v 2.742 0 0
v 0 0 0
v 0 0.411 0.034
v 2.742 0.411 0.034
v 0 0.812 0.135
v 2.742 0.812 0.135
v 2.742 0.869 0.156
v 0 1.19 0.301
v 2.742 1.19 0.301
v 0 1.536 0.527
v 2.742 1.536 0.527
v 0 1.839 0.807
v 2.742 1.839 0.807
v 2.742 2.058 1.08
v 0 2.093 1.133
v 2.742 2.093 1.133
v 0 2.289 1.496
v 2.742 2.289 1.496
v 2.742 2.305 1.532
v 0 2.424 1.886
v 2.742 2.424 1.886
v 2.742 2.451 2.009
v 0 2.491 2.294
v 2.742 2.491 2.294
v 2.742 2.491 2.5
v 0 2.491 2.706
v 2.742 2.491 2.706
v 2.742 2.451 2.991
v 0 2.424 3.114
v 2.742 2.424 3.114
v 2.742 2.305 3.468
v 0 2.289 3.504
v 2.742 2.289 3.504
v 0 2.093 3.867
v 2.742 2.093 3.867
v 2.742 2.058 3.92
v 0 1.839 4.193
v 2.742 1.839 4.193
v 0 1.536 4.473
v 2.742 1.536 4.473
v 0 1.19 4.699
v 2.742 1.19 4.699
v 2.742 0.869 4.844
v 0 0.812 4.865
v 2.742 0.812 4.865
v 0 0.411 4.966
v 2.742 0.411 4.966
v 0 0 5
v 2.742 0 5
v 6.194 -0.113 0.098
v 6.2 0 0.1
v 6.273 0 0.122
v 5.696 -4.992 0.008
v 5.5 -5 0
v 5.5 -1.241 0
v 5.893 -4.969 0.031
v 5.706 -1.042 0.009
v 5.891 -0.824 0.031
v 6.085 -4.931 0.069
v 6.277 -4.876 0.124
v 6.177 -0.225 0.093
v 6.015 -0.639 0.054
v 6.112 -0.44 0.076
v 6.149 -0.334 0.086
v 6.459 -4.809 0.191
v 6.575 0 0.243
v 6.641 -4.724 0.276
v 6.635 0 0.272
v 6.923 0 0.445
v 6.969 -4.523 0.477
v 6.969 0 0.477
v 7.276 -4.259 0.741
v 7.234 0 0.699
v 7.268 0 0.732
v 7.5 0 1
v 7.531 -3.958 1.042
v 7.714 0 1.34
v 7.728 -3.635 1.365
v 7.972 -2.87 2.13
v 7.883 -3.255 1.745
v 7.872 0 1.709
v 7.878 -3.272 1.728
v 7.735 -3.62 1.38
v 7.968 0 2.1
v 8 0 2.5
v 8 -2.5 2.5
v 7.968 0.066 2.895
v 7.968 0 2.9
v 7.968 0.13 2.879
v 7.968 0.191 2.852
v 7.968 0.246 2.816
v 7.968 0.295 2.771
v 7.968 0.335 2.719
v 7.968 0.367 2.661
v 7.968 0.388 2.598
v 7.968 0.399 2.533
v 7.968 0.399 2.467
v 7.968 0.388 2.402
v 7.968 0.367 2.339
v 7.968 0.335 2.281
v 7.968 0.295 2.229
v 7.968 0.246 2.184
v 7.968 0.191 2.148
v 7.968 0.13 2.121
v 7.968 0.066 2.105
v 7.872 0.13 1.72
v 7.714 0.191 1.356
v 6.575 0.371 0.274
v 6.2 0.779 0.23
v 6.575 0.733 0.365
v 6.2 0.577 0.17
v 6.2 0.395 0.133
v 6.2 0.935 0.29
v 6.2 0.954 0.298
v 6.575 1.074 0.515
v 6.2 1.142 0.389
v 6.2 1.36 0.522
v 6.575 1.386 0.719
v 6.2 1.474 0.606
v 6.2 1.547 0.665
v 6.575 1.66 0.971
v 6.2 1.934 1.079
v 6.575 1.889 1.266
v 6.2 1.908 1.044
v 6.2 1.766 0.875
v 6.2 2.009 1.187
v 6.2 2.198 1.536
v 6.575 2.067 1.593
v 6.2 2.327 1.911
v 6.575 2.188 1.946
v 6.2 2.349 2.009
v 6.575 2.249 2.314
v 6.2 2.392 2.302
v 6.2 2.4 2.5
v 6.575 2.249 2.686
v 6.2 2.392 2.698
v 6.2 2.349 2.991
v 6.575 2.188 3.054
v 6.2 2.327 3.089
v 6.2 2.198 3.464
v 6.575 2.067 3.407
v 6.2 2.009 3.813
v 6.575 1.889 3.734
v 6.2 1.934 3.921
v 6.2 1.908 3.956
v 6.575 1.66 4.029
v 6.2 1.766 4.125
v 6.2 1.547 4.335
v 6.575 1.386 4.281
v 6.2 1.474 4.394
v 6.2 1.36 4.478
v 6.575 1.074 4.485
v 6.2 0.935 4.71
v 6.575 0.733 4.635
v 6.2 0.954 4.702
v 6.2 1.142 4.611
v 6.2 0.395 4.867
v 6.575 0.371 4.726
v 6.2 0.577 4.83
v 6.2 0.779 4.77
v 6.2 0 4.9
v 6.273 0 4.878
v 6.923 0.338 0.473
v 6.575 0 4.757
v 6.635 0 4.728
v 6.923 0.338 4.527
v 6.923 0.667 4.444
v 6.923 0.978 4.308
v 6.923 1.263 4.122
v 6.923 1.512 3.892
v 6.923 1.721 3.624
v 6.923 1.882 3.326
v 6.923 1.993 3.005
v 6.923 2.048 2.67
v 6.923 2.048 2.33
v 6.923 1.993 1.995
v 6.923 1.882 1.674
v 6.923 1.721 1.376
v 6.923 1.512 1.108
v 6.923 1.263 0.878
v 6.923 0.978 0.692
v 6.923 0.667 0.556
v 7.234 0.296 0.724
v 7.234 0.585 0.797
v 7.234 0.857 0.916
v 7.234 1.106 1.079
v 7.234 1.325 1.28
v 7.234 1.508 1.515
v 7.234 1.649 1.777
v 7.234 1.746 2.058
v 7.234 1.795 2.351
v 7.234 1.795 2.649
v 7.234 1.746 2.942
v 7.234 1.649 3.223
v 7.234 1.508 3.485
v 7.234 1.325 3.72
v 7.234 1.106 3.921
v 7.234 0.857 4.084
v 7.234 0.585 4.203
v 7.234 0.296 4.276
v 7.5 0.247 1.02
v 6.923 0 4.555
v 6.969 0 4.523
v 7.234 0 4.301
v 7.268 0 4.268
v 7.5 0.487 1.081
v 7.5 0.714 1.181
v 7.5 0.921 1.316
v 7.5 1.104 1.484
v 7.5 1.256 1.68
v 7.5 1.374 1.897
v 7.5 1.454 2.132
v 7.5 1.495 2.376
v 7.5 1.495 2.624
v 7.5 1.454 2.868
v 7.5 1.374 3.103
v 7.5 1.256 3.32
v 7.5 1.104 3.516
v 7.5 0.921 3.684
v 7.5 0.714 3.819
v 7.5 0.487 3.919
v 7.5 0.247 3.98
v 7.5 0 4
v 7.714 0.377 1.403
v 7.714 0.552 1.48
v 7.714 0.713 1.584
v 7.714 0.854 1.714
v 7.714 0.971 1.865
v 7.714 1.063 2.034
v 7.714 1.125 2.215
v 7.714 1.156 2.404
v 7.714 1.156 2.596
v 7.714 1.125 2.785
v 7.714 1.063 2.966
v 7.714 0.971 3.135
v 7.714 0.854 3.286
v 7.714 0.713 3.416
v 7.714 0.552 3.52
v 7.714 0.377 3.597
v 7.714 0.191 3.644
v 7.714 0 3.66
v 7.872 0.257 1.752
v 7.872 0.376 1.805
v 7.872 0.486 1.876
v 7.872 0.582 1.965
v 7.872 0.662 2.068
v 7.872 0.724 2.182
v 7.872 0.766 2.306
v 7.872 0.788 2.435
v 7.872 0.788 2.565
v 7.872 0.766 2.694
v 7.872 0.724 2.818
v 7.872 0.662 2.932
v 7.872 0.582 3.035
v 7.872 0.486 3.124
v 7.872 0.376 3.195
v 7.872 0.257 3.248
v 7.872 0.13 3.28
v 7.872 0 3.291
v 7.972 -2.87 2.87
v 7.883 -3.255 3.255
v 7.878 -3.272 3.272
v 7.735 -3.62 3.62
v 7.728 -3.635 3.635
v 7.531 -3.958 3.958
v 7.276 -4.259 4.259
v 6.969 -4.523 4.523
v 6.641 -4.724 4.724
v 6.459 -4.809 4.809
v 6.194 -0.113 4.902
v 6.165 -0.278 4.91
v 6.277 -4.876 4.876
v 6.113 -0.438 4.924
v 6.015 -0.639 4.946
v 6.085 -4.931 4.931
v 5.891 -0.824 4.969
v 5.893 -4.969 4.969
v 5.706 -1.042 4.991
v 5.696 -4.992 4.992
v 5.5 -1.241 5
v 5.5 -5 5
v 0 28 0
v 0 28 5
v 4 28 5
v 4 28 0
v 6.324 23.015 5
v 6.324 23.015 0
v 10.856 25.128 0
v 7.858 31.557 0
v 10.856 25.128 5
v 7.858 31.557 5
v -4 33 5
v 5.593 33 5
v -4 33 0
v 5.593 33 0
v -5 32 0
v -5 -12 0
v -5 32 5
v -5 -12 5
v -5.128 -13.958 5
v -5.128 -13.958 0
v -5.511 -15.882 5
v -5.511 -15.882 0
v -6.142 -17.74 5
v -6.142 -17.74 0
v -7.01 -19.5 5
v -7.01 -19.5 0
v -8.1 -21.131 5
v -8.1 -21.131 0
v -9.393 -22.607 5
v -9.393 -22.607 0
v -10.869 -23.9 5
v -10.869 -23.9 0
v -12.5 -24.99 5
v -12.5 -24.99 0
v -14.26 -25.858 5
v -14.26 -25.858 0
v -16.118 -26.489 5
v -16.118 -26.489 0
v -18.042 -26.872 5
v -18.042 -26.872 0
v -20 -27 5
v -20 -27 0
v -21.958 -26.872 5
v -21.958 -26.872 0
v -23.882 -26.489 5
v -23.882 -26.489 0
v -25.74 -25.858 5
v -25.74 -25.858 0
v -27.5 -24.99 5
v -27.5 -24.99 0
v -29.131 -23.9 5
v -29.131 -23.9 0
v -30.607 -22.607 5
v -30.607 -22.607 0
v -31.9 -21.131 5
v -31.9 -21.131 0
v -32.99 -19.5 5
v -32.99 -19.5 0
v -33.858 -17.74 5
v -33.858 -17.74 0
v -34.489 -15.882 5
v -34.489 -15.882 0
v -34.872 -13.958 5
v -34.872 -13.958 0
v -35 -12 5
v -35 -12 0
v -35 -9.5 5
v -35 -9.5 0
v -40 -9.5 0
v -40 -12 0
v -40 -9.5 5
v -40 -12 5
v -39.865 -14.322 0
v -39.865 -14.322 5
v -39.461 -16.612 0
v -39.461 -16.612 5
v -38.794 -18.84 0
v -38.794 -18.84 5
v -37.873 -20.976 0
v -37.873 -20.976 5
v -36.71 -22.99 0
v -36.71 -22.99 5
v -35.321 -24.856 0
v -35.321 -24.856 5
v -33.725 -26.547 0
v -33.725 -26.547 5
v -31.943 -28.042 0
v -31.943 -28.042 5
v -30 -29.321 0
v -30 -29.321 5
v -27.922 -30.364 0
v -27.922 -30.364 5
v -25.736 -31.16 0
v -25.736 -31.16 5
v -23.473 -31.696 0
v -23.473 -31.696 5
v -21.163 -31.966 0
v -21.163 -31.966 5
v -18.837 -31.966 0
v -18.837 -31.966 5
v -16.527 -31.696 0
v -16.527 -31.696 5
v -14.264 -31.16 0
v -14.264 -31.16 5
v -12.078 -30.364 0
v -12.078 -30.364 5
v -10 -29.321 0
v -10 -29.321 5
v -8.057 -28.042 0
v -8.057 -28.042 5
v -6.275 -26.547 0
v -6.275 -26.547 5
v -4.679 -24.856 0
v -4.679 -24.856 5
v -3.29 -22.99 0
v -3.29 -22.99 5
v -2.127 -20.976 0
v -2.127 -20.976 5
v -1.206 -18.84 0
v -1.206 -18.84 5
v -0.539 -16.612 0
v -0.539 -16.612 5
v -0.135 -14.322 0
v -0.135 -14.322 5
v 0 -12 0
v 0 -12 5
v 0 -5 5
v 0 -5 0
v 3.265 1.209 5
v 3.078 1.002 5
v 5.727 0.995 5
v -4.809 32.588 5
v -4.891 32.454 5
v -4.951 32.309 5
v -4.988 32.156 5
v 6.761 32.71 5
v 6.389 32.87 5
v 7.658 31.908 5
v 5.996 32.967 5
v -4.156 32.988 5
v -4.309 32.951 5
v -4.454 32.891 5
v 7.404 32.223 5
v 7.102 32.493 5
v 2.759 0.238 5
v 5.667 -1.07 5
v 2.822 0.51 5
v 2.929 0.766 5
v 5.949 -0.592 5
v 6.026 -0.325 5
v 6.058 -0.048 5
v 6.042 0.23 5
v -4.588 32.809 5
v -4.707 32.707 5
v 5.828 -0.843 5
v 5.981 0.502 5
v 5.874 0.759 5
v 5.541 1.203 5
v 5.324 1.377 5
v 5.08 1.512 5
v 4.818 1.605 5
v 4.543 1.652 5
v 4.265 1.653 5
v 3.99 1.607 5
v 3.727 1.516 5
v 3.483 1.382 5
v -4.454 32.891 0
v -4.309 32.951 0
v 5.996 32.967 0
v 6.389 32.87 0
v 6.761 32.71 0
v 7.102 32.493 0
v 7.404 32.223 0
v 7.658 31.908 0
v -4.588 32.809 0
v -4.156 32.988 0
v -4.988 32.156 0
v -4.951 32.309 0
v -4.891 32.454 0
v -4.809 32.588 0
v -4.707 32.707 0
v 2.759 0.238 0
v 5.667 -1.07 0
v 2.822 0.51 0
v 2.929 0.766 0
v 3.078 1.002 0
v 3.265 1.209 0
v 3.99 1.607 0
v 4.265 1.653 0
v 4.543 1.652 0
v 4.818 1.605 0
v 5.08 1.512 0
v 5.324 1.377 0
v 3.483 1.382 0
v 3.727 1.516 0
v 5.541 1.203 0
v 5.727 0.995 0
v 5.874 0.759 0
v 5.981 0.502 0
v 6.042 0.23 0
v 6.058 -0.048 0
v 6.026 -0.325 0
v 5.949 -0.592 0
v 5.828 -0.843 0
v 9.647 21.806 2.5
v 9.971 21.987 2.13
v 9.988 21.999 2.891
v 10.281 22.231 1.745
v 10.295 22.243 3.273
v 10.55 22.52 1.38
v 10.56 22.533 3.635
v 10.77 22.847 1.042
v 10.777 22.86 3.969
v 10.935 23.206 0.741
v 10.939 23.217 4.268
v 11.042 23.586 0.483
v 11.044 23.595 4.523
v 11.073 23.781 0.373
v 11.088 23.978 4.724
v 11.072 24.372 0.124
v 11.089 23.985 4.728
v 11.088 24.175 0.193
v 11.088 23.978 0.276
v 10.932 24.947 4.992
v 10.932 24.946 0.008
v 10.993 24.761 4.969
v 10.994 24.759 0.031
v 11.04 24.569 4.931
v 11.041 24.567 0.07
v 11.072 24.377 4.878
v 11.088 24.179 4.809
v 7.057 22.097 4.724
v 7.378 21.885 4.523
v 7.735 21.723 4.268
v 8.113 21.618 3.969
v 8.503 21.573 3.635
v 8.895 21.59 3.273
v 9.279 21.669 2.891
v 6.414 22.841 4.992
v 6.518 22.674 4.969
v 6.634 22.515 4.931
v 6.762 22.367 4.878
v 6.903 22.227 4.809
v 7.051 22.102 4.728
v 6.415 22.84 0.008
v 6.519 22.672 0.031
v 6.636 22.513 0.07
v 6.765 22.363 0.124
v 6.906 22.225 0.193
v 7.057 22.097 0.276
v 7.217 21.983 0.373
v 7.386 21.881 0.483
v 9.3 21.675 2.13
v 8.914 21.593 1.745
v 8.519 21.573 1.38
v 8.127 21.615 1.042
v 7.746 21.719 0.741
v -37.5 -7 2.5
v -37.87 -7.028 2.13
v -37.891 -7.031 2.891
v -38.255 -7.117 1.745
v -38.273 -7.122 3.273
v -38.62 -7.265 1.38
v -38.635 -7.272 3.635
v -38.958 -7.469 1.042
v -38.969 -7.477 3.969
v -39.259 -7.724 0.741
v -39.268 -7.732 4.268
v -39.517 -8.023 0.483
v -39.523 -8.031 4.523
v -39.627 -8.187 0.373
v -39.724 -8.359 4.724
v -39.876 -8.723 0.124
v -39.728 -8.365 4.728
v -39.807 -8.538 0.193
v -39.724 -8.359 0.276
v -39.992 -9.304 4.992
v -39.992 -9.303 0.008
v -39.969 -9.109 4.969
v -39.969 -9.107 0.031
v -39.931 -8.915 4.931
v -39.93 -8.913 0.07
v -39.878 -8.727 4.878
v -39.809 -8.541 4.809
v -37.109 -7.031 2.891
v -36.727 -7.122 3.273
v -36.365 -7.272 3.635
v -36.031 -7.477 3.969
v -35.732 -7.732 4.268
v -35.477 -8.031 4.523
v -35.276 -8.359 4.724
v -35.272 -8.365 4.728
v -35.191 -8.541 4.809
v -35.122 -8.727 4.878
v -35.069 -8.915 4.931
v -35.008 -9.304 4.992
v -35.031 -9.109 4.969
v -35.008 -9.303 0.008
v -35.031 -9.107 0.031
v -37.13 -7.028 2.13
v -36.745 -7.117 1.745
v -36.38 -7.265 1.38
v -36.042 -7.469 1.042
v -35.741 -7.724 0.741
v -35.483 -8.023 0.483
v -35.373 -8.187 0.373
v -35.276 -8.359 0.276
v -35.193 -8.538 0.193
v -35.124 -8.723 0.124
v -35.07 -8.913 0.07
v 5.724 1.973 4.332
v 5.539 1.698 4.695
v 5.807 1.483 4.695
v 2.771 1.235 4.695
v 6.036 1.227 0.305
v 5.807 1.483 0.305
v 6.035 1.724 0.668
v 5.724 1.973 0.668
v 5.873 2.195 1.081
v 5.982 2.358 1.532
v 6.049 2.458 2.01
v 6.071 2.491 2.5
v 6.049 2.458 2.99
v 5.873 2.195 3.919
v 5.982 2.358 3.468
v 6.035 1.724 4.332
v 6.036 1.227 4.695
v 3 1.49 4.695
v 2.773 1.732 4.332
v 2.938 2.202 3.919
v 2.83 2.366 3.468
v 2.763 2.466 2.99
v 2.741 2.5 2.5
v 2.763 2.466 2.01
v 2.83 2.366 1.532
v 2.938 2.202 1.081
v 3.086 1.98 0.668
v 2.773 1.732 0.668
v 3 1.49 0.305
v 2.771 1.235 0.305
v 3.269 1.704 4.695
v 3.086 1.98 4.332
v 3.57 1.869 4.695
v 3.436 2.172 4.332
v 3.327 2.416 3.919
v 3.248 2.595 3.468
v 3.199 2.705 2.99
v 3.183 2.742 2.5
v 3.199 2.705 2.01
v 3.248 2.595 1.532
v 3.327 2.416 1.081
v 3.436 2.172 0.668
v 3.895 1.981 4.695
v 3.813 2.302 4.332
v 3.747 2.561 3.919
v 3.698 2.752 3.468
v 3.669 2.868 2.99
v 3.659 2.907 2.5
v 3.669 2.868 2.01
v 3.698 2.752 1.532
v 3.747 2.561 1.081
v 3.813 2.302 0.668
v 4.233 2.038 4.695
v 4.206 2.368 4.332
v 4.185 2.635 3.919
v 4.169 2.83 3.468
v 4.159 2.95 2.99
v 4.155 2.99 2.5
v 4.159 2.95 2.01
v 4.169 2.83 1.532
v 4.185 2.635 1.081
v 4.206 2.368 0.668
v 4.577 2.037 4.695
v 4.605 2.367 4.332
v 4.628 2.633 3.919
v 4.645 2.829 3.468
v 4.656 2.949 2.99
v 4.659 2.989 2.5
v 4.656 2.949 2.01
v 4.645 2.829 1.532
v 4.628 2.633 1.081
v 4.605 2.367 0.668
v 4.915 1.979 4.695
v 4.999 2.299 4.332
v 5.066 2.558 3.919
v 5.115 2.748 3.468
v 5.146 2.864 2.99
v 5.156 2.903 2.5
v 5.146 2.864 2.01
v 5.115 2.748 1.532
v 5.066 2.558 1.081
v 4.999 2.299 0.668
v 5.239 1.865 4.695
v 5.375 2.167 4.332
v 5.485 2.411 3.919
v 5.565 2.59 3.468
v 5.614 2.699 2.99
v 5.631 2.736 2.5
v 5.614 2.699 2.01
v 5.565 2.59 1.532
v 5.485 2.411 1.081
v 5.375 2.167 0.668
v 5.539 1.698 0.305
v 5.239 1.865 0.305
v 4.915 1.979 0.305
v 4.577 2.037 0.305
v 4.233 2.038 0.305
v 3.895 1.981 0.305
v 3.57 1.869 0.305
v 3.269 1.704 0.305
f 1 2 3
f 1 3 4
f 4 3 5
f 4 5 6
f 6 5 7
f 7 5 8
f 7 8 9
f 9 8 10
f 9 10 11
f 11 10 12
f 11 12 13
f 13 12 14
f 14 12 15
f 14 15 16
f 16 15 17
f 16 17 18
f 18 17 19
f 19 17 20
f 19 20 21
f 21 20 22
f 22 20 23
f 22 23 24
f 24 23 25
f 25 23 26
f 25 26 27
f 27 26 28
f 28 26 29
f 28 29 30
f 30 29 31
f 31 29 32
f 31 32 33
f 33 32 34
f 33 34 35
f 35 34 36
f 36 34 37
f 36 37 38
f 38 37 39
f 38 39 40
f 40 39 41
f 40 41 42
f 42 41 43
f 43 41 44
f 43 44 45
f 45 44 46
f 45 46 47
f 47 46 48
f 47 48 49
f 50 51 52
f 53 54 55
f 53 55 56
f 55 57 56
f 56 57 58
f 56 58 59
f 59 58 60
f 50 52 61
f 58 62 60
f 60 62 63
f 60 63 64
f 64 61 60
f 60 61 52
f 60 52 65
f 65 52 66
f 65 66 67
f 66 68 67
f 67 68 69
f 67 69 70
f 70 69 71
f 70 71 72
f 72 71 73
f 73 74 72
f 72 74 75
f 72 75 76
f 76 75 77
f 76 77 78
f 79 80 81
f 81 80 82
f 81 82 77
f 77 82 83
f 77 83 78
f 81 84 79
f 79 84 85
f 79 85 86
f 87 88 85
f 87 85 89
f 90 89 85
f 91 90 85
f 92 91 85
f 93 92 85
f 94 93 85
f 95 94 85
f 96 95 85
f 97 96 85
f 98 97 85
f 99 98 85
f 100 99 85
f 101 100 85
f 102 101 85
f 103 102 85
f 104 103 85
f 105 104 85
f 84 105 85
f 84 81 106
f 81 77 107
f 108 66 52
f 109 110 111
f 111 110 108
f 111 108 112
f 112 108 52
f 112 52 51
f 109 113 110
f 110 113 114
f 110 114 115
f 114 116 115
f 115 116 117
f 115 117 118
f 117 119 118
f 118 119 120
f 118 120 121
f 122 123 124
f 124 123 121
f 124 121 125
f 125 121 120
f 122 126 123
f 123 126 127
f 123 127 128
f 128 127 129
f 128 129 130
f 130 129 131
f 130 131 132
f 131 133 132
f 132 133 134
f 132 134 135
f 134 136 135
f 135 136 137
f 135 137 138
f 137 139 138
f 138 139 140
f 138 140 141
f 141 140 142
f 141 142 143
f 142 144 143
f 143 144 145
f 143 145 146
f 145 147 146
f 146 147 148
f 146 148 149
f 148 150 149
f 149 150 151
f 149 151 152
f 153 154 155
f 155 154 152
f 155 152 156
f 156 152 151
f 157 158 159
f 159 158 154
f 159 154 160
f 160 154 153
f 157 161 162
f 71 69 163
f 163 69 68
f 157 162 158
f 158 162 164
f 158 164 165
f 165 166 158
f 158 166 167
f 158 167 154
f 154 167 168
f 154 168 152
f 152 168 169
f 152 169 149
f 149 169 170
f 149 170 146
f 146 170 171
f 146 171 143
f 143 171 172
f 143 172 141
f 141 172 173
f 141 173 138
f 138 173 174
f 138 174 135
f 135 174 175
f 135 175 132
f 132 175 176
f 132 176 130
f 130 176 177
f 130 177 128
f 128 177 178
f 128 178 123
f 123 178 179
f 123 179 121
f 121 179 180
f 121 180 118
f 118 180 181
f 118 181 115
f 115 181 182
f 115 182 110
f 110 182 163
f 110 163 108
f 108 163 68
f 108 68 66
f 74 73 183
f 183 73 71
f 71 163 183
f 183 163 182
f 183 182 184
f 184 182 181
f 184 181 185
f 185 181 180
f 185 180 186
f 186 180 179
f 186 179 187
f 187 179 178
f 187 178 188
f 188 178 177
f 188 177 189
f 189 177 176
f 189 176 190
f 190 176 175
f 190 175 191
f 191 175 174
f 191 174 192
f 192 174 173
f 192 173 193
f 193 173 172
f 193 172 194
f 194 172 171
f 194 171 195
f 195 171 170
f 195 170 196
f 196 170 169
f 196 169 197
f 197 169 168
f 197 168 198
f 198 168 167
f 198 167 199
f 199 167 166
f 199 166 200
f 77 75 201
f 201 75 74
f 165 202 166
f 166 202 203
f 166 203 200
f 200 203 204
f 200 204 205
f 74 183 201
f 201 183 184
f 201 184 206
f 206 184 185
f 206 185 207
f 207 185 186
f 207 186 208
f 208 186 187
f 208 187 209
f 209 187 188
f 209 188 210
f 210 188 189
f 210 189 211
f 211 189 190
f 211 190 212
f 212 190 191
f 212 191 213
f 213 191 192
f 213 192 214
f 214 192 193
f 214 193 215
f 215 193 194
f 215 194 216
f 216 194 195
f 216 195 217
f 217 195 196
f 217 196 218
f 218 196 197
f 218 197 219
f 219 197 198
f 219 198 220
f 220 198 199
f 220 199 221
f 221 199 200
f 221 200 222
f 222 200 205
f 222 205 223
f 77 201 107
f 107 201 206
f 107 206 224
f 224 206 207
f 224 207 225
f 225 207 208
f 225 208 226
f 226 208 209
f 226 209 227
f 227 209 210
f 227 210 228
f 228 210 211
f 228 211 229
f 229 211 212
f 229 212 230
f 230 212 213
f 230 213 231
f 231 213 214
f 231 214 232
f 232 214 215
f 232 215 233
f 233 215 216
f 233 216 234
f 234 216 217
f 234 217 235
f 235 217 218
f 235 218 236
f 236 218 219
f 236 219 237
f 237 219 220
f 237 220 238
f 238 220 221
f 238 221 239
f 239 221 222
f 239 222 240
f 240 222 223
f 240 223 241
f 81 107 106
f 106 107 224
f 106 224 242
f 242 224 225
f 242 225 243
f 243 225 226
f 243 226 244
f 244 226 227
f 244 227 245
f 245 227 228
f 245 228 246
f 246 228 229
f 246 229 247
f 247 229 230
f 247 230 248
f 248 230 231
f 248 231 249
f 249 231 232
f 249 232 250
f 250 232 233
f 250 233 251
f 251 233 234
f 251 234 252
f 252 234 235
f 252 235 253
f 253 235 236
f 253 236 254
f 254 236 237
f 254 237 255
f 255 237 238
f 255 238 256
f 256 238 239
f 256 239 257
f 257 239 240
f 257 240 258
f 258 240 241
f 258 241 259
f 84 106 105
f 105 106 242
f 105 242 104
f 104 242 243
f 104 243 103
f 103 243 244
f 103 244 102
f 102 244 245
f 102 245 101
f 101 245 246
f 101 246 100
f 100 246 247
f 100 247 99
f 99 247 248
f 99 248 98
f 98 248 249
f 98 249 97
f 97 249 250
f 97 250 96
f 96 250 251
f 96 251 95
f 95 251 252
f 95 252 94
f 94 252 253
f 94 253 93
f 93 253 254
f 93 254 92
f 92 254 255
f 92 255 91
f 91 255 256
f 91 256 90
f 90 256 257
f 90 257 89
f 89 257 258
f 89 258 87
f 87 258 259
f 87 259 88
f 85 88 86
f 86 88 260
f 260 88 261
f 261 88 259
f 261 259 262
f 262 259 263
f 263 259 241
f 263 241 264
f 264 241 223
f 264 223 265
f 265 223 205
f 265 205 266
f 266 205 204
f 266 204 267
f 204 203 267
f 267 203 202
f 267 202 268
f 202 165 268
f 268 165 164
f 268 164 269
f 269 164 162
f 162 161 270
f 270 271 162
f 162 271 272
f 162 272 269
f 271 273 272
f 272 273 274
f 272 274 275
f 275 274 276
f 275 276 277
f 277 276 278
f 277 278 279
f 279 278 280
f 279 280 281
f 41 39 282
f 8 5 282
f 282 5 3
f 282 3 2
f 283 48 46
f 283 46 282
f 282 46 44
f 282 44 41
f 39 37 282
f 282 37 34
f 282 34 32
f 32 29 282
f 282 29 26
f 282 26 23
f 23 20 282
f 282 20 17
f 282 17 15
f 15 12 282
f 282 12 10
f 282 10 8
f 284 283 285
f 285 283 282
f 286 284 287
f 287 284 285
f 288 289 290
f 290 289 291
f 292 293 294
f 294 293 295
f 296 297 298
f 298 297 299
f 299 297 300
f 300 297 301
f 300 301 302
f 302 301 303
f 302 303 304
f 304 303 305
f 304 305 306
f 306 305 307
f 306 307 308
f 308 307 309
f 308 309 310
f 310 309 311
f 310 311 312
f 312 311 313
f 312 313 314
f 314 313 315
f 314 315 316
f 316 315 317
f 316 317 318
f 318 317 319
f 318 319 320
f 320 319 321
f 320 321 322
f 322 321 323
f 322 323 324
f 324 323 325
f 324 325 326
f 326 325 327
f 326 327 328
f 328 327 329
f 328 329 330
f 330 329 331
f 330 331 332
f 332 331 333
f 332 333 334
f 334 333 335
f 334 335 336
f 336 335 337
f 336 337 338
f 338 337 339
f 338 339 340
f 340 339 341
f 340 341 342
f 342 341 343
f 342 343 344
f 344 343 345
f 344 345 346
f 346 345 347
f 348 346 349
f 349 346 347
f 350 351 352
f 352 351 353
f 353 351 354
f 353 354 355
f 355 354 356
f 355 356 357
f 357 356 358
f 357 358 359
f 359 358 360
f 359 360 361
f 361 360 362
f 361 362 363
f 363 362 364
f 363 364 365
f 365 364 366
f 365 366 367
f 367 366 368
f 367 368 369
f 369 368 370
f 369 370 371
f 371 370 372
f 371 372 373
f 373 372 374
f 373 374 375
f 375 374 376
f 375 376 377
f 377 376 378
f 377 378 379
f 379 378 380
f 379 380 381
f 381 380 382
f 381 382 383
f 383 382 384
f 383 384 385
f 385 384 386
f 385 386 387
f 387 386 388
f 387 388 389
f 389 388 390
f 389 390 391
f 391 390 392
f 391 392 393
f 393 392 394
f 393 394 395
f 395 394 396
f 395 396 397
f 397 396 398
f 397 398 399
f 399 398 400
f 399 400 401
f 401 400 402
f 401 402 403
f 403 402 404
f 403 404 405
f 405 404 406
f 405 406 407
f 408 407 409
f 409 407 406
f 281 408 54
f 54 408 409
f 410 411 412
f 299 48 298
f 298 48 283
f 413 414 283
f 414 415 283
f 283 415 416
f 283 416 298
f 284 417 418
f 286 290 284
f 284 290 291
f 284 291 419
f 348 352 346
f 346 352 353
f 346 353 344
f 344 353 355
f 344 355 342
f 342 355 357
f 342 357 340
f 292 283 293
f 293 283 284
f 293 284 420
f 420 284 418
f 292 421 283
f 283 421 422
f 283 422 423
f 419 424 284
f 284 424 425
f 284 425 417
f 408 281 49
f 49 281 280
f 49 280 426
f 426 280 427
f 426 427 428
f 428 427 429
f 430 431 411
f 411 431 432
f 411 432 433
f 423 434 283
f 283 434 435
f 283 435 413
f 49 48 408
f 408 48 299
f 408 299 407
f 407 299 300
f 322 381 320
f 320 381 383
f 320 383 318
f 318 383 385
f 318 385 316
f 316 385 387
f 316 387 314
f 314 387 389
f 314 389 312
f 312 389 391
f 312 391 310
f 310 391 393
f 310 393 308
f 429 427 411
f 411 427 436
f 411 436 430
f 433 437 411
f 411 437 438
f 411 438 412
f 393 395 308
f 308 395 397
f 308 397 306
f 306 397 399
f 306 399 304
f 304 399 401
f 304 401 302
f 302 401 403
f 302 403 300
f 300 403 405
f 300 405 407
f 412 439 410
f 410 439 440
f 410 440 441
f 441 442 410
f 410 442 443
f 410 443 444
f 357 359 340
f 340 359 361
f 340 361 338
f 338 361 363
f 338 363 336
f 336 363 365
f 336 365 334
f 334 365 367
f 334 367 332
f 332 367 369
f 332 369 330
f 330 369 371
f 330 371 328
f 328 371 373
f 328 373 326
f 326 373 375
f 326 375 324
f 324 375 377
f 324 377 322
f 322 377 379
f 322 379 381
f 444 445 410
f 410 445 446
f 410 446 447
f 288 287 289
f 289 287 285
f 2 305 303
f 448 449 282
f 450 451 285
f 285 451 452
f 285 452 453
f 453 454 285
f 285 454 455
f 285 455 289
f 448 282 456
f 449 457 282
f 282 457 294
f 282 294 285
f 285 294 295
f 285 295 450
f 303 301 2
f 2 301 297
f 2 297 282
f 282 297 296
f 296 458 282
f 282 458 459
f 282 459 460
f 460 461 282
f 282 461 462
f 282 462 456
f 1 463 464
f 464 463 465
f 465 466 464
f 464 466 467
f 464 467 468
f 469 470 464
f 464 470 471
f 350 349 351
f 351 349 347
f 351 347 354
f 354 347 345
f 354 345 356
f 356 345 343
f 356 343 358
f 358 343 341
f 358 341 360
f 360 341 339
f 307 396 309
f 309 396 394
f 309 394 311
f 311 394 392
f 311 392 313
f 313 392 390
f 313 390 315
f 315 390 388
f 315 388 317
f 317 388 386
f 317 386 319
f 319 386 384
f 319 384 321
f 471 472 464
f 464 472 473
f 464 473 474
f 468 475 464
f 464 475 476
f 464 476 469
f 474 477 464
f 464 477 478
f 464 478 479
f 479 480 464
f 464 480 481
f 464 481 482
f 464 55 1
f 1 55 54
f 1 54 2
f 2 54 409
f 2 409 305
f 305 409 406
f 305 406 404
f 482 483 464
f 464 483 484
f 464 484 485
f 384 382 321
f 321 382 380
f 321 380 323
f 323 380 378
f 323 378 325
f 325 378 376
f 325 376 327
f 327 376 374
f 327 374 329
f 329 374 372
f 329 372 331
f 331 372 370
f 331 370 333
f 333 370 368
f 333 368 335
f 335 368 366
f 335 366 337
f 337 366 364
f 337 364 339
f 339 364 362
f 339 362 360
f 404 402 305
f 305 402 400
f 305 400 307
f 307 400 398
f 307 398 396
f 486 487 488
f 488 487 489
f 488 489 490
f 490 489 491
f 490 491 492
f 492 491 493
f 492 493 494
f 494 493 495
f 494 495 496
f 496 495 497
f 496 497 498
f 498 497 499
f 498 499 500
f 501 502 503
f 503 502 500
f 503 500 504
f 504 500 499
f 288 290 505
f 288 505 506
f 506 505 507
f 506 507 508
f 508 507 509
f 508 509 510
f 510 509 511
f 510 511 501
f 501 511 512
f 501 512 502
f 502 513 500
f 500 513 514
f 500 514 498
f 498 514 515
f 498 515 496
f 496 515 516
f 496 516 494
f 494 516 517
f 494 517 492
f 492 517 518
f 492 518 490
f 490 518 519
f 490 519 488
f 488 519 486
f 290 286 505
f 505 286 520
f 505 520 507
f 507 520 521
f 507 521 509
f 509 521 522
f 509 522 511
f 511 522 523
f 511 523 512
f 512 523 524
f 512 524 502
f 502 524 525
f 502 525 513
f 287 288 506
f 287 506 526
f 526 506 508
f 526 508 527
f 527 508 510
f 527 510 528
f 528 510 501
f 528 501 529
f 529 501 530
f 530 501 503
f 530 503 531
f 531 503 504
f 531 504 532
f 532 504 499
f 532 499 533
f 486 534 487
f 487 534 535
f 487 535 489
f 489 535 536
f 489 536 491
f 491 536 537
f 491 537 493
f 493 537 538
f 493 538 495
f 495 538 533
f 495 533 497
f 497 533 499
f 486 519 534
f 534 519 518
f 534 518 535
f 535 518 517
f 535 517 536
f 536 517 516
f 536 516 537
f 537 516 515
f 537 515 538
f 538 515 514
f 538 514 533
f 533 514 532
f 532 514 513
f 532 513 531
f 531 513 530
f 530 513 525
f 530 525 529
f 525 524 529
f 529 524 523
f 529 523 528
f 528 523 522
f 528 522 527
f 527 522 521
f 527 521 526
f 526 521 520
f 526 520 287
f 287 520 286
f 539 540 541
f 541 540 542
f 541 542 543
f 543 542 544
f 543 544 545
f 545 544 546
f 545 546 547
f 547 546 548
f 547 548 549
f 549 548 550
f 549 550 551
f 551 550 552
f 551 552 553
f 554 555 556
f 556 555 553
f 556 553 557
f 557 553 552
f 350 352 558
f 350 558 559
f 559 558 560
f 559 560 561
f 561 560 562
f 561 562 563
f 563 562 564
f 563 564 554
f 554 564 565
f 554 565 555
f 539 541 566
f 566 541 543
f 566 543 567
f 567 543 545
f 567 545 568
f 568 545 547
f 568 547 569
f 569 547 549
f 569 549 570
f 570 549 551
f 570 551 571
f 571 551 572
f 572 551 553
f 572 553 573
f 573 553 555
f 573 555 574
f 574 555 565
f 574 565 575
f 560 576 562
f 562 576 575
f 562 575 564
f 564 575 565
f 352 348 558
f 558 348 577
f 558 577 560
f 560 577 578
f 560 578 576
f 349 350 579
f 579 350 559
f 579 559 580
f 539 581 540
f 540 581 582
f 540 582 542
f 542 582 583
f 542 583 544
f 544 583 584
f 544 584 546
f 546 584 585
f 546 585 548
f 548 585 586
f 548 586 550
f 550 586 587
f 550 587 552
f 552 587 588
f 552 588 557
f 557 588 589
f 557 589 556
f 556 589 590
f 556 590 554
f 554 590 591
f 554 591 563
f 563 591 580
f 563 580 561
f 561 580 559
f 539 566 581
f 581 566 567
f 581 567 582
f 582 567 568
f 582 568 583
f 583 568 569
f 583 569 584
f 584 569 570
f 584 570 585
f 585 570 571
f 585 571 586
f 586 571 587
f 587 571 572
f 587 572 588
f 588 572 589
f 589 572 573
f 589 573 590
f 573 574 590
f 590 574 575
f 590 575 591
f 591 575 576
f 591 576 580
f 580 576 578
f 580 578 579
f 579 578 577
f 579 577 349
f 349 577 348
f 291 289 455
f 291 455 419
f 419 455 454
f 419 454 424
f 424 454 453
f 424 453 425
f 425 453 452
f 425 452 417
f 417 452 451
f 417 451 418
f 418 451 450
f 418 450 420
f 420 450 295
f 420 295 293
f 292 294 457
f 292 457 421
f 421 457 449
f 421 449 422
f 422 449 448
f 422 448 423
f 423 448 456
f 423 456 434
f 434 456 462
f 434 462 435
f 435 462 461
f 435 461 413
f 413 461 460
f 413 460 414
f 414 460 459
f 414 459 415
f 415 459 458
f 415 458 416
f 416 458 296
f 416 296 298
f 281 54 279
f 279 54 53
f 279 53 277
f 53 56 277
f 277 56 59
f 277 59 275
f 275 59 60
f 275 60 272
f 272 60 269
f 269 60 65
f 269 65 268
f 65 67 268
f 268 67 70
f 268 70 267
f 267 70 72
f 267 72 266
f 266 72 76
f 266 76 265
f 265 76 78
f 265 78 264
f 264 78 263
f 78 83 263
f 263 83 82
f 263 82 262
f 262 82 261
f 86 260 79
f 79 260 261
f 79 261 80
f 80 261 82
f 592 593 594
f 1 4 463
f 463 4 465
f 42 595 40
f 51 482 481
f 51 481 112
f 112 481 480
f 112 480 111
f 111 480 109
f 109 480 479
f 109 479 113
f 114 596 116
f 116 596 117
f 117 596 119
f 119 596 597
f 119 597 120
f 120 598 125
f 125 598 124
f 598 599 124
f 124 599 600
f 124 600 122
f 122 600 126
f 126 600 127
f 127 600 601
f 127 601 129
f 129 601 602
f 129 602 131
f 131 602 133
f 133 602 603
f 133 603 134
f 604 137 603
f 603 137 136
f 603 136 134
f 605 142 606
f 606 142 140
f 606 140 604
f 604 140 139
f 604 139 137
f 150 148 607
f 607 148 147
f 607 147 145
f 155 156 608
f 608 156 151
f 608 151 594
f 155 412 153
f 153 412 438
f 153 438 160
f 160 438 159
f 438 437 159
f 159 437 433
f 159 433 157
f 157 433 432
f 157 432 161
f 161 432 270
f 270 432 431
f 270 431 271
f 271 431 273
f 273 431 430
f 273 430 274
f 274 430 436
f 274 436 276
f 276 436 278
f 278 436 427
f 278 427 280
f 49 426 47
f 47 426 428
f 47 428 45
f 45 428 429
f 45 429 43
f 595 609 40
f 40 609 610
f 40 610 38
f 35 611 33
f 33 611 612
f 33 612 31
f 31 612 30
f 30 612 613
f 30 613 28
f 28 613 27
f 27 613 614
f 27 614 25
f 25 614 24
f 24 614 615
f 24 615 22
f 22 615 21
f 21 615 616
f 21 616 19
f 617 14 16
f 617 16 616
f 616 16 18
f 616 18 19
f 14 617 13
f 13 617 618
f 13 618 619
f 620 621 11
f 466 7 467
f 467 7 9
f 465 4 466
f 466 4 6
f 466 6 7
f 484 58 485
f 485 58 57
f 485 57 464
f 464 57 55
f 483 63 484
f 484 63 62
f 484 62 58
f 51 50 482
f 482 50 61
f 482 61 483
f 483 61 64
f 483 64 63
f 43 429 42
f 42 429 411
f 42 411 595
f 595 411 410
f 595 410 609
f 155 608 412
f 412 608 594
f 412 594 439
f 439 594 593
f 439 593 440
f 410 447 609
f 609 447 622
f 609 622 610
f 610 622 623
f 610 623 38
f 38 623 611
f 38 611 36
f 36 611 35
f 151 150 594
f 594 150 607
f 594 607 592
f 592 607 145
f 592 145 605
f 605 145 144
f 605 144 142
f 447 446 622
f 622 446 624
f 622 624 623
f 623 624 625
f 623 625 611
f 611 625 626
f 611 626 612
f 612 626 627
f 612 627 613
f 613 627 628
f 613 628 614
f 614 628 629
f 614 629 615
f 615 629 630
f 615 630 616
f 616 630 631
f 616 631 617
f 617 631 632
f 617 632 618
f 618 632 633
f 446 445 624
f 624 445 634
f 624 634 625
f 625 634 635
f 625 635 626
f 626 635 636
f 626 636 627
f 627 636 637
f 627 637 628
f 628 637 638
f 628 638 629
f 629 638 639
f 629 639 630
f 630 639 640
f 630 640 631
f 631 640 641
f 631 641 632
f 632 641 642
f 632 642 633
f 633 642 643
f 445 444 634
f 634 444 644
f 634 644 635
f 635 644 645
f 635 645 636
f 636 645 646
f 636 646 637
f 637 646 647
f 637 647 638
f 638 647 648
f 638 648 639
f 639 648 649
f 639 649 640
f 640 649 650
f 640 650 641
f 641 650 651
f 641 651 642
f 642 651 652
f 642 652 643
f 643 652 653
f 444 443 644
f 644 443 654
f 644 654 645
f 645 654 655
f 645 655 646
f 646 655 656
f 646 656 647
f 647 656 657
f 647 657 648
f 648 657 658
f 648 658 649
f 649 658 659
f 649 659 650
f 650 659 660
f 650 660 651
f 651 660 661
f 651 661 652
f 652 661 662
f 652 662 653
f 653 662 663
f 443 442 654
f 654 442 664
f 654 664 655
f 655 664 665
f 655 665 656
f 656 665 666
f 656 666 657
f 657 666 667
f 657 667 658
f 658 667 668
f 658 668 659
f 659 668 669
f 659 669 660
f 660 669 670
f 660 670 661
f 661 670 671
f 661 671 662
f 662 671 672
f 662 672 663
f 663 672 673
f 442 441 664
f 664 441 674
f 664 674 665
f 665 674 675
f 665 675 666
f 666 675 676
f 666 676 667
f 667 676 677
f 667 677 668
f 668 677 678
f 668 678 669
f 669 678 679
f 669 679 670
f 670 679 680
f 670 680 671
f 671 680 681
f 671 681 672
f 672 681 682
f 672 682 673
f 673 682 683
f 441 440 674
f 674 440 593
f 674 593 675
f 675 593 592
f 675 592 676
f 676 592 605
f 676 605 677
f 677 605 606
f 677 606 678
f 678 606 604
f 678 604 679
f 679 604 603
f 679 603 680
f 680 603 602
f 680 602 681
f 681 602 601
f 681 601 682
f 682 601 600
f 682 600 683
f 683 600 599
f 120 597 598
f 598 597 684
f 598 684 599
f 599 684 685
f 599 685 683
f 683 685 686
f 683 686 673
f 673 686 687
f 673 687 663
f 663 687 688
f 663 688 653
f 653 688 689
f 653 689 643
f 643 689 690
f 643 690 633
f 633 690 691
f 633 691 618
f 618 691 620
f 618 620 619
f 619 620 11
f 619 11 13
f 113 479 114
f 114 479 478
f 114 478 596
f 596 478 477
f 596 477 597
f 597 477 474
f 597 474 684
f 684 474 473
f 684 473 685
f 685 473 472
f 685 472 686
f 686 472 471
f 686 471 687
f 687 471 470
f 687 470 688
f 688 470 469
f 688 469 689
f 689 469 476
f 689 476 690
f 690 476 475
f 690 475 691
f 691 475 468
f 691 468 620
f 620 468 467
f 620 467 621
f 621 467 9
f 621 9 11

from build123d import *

# Parameters (mm, degrees)
EXTRUDE_1_DEPTH     = 5
FILLET_1_R          = 2.5
FILLET_2_R          = 1
EXTRUDE_2_DEPTH     = 8
FILLET_3_R          = 2.5
SKETCH_5_W          = 1.467751534
SKETCH_5_H          = 4.178210798
SKETCH_5_W_2        = 1.389566385
CUT_EXTRUDE_1_DEPTH = 20


with BuildPart() as part:
    # 草图1 → 凸台-拉伸1 (new body)
    with BuildSketch(Plane.XY):
        with BuildLine():
            Line((0, 0), (0, 28))
            Line((0, 28), (4, 28))
            Line((4, 28), (7.380946094, 20.749537704))
            Line((7.380946094, 20.749537704), (11.912485029, 22.862629012))
            Line((11.912485029, 22.862629012), (7.185351304, 33))
            Line((7.185351304, 33), (-5, 33))
            Line((-5, 33), (-5, -12))
            ThreePointArc((-5, -12), (-20, -27), (-35, -12))
            Line((-35, -12), (-35, -7))
            Line((-35, -7), (-40, -7))
            Line((-40, -7), (-40, -12))
            ThreePointArc((-40, -12), (-20, -32), (0, -12))
            Line((0, -12), (0, -5))
            Line((0, -5), (8, -5))
            Line((8, -5), (8, 0))
            Line((8, 0), (0, 0))
        make_face()
    extrude(amount=EXTRUDE_1_DEPTH)

    # 圆角1
    fillet_1_edges = [part.edges().sort_by_distance(p)[0] for p in [
        (-37.5, -7, 0),
        (9.646715562, 21.806083358, 0),
        (9.646715562, 21.806083358, 5),
        (-40, -7, 2.5),
        (-35, -7, 2.5),
        (7.185351304, 33, 2.5),
        (11.912485029, 22.862629012, 2.5),
        (7.380946094, 20.749537704, 2.5),
        (-37.5, -7, 5),
    ]]
    fillet(fillet_1_edges, radius=FILLET_1_R - 0.0001)  # a hair under: the kernel refuses the full size

    # 圆角2
    fillet_2_edges = [part.edges().sort_by_distance(p)[0] for p in [
        (-5, 33, 2.5),
    ]]
    fillet(fillet_2_edges, radius=FILLET_2_R)

    # 草图3 → 凸台-拉伸2 (add)
    with BuildSketch(Plane(origin=(0, 0, 0), x_dir=(0, 0, -1), z_dir=(1, 0, 0))):
        with BuildLine():
            Line((-5, 0), (0, 0))
            ThreePointArc((0, 0), (-2.5, 2.5), (-5, 0))
        make_face()
    extrude(amount=EXTRUDE_2_DEPTH)

    # 圆角3
    fillet_3_edges = [part.edges().sort_by_distance(p)[0] for p in [
        (8, -2.5, 0),
        (8, -5, 2.5),
        (8, -2.5, 5),
        (8, 2.5, 2.5),
    ]]
    fillet(fillet_3_edges, radius=FILLET_3_R - 0.0001)  # a hair under: the kernel refuses the full size

    # 草图4 → 旋转3 (revolve)
    with BuildSketch(Plane(origin=(4.4, 0, 0), x_dir=(0, 0, -1), z_dir=(1, 0, 0))):
        with BuildLine():
            Line((-5.5, 0), (0.5, 0))
            ThreePointArc((0.5, 0), (-2.5, 3), (-5.5, 0))
        make_face()
    revolve(axis=Axis((4.4, 0, 2.5), (0, 0, -1)))

    # 草图5 → 切除-拉伸1 (cut)
    with BuildSketch(Plane.ZY.offset(5)):
        with Locations((-0.733875767, -0.010051234)):
            Rectangle(SKETCH_5_W, SKETCH_5_H)
        with Locations((5.694783193, -0.010051234)):
            Rectangle(SKETCH_5_W_2, SKETCH_5_H)
    extrude(amount=-CUT_EXTRUDE_1_DEPTH, mode=Mode.SUBTRACT)


solid = part.part
